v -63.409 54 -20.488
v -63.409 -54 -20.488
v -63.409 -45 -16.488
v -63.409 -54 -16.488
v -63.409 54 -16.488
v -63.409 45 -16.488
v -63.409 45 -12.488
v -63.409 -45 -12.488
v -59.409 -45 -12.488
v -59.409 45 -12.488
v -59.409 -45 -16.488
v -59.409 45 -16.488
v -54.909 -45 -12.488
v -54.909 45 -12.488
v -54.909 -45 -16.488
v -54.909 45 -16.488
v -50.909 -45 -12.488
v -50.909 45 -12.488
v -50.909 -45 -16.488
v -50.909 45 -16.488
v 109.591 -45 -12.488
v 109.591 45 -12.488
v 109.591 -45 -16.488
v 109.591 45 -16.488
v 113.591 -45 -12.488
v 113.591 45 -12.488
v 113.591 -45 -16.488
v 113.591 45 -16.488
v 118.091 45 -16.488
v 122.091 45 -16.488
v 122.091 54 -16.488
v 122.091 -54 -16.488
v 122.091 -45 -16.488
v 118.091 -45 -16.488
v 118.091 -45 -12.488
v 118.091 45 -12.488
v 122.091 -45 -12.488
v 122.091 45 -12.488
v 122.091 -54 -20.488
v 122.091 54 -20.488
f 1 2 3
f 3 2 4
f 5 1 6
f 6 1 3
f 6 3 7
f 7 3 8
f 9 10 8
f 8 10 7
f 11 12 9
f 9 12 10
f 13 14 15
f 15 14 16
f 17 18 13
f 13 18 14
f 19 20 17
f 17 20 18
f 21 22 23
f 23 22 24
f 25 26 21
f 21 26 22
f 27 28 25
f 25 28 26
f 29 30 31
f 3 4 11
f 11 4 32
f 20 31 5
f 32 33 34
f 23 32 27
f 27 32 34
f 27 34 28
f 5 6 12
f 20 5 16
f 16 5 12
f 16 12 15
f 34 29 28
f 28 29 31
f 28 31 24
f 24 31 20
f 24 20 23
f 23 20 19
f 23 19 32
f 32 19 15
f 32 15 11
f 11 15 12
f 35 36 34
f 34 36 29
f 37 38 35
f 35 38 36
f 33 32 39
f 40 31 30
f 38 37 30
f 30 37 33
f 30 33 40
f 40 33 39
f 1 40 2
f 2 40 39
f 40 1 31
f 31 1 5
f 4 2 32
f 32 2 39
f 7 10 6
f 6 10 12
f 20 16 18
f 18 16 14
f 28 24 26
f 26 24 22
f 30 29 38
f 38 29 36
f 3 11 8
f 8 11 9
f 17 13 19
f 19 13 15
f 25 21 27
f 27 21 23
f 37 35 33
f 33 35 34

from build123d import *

# Parameters (mm, degrees)
BOSS_EXTRUDE1_DEPTH = 54
SKETCH7_W           = 185.5
SKETCH7_H           = 9
CUT_EXTRUDE4_DEPTH  = 4
SKETCH8_W           = 185.5
SKETCH8_H           = 9
CUT_EXTRUDE5_DEPTH  = 4


with BuildPart() as part:
    # Sketch1 → Boss-Extrude1 (new, symmetric)
    with BuildSketch(Plane(origin=(0, 0, 0), x_dir=(1, 0, 0), z_dir=(0, 1, 0))):
        Polygon((-63.408892702, 20.487993735), (122.091107298, 20.487993735), (122.091107298, 12.487993735), (118.091107298, 12.487993735), (118.091107298, 16.487993735), (113.591107298, 16.487993735), (113.591107298, 12.487993735), (109.591107298, 12.487993735), (109.591107298, 16.487993735), (-50.908892702, 16.487993735), (-50.908892702, 12.487993735), (-54.908892702, 12.487993735), (-54.908892702, 16.487993735), (-59.408892702, 16.487993735), (-59.408892702, 12.487993735), (-63.408892702, 12.487993735), align=None)
    extrude(amount=BOSS_EXTRUDE1_DEPTH, both=True)

    # Sketch7 → Cut-Extrude4 (cut)
    with BuildSketch(Plane.XY.offset(-12.487993735)):
        with Locations((29.341107298, 49.5)):
            Rectangle(SKETCH7_W, SKETCH7_H)
    extrude(amount=-CUT_EXTRUDE4_DEPTH, mode=Mode.SUBTRACT)

    # Sketch8 → Cut-Extrude5 (cut)
    with BuildSketch(Plane.XY.offset(-12.487993735)):
        with Locations((29.341107298, -49.5)):
            Rectangle(SKETCH8_W, SKETCH8_H)
    extrude(amount=-CUT_EXTRUDE5_DEPTH, mode=Mode.SUBTRACT)


solid = part.part
